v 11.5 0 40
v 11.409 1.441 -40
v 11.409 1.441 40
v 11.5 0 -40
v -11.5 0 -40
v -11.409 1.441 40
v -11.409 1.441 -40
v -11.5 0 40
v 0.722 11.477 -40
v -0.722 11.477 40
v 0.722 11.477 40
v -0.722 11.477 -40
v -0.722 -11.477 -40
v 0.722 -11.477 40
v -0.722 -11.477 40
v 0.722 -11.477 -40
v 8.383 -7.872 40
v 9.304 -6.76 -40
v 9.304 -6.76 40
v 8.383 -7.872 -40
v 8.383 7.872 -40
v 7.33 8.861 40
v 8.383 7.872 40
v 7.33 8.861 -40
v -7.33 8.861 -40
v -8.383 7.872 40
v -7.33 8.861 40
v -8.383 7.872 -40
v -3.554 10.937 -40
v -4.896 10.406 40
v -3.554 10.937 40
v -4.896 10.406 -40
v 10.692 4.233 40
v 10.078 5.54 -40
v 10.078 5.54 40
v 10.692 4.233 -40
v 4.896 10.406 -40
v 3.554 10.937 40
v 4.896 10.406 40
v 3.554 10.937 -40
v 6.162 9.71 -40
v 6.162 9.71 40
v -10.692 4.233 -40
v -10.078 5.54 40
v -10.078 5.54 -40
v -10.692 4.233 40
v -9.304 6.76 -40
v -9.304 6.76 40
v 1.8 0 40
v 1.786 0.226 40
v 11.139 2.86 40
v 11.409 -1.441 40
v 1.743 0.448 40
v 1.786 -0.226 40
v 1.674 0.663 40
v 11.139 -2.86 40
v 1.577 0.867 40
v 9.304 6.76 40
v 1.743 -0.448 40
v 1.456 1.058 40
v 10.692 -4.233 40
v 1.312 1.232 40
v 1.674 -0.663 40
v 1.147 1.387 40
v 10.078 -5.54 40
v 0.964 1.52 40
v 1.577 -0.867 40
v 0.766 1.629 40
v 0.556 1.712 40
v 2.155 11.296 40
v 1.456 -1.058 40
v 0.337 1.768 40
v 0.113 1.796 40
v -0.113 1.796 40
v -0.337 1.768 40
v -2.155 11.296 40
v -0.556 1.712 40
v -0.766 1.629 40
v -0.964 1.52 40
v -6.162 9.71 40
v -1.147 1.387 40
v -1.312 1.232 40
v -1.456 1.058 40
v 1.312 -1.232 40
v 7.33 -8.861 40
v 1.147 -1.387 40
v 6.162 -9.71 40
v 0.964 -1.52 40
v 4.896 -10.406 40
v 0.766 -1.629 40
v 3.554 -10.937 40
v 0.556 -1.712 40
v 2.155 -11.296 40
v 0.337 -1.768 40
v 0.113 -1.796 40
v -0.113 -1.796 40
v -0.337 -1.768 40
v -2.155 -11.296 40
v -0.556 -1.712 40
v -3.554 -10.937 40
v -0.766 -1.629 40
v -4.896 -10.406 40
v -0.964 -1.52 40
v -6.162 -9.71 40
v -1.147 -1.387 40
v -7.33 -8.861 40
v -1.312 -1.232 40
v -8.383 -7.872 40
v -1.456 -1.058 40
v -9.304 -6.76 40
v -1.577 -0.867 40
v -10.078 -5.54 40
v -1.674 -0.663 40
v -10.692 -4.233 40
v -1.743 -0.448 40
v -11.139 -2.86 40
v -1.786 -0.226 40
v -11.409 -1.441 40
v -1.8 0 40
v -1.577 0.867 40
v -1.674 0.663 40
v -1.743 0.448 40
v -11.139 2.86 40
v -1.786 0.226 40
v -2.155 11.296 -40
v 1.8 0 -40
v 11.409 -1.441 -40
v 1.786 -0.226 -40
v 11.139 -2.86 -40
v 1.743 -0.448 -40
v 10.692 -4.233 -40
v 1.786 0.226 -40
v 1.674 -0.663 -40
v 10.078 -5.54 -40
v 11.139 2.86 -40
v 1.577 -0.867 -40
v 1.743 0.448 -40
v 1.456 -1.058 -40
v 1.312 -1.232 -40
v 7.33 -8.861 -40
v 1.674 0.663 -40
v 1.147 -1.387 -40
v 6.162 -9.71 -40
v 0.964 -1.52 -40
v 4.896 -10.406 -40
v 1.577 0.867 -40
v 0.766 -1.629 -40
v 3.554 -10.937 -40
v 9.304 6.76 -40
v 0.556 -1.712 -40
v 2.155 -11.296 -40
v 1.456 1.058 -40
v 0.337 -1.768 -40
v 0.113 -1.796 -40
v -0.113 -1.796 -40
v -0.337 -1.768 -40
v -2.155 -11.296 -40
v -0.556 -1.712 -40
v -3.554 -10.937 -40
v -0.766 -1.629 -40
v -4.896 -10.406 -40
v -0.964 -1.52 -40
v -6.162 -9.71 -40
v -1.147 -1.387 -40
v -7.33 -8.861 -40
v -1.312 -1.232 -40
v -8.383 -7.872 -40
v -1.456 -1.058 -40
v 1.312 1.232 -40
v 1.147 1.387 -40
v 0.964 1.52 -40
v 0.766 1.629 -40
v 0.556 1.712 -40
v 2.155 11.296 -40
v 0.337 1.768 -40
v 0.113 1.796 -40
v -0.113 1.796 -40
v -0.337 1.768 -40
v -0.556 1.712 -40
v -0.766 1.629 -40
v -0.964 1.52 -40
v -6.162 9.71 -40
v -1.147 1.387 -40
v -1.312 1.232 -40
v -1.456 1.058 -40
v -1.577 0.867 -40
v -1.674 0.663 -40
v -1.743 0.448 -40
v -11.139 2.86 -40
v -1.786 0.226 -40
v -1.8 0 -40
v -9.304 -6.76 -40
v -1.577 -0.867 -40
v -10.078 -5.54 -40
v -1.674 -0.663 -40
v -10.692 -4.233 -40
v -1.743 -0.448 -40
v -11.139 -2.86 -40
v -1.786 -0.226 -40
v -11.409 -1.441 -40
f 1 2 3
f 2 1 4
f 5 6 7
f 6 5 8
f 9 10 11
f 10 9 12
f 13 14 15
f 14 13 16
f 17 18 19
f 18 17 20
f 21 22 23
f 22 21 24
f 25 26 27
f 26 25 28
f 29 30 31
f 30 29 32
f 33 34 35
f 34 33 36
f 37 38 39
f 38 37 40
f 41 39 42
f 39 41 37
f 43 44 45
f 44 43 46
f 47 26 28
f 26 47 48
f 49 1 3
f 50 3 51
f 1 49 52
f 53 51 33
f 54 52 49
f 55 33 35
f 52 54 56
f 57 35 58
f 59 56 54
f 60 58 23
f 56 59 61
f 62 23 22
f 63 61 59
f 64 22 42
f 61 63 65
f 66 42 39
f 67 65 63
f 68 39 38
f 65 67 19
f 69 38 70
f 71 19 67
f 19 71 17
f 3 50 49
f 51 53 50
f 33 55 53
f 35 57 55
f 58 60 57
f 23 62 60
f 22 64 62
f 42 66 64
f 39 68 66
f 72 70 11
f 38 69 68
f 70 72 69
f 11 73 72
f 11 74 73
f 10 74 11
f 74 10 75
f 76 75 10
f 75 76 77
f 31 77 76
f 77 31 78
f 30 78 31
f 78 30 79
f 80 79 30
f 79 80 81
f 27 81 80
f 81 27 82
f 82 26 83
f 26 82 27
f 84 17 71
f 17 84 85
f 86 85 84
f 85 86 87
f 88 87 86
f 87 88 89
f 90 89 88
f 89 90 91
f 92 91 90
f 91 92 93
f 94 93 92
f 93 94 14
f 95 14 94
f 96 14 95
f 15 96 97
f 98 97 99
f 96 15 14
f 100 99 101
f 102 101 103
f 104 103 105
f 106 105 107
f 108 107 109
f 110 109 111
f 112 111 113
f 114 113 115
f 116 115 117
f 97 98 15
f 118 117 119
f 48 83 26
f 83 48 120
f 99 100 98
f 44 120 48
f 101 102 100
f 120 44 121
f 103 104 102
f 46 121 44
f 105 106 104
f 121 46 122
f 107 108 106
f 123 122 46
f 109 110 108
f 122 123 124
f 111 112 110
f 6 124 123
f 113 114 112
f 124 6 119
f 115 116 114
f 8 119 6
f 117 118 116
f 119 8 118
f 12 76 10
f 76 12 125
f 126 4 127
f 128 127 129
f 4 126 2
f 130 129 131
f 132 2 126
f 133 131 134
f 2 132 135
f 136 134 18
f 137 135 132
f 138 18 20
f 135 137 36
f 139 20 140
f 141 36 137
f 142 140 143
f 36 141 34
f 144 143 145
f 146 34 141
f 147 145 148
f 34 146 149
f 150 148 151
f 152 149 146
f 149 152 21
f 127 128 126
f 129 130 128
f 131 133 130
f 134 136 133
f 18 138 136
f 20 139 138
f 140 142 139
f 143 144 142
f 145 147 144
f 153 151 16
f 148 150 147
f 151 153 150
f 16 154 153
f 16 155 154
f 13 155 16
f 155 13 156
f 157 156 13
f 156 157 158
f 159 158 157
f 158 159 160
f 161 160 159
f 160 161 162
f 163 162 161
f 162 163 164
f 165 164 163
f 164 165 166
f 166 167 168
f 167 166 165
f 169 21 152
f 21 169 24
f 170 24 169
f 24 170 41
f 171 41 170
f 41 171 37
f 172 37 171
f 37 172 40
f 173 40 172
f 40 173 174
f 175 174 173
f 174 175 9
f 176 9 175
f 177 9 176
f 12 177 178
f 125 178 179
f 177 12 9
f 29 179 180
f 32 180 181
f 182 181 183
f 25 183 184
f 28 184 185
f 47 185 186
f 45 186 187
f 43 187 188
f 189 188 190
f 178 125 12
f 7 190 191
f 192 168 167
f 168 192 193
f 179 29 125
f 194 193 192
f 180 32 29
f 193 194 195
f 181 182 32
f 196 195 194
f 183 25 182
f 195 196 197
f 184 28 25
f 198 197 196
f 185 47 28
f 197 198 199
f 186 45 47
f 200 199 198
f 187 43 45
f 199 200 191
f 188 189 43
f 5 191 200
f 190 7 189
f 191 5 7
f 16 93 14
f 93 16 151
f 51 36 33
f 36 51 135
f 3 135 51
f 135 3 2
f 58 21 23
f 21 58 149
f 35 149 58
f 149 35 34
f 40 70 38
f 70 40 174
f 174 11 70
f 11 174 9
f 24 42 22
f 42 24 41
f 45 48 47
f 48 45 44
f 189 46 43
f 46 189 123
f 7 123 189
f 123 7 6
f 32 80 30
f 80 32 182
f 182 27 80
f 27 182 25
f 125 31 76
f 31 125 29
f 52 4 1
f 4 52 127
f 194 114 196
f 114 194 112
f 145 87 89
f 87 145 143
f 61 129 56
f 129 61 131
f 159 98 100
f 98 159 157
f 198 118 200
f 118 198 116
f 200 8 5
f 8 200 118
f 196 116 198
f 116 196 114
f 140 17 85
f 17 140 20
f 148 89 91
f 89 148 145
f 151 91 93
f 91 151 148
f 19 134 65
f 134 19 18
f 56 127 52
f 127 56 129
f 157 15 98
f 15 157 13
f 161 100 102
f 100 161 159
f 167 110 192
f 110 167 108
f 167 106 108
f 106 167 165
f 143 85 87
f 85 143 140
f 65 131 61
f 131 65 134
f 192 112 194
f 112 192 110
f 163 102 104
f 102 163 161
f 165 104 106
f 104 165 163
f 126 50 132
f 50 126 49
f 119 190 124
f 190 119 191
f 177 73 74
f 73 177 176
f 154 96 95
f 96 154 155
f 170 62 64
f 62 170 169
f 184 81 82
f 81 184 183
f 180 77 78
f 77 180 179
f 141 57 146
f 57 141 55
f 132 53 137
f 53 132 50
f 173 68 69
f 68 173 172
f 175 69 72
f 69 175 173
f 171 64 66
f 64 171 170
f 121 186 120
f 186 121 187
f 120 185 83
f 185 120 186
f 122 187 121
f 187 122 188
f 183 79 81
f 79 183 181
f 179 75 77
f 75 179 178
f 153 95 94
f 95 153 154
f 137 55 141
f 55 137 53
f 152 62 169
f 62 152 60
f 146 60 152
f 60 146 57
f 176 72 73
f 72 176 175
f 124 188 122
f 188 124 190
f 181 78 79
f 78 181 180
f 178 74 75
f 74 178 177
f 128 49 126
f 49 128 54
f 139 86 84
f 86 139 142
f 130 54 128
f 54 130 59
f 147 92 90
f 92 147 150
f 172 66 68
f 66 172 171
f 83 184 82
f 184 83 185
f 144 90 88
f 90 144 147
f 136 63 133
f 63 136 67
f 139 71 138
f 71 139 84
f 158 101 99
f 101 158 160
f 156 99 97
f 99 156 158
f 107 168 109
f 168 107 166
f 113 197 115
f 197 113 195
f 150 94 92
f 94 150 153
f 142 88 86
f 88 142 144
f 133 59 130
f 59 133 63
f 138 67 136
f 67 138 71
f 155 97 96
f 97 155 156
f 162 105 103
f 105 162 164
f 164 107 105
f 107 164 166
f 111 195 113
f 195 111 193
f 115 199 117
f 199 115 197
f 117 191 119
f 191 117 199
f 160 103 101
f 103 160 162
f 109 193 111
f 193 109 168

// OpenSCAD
$fn = 50;


difference() {
	union() {
		translate(v = [0, 0, -40.0000000000]) {
			cylinder(h = 80, r = 11.5000000000);
		}
	}
	union() {
		translate(v = [0, 0, -100.0000000000]) {
			cylinder(h = 200, r = 1.8000000000);
		}
	}
}
